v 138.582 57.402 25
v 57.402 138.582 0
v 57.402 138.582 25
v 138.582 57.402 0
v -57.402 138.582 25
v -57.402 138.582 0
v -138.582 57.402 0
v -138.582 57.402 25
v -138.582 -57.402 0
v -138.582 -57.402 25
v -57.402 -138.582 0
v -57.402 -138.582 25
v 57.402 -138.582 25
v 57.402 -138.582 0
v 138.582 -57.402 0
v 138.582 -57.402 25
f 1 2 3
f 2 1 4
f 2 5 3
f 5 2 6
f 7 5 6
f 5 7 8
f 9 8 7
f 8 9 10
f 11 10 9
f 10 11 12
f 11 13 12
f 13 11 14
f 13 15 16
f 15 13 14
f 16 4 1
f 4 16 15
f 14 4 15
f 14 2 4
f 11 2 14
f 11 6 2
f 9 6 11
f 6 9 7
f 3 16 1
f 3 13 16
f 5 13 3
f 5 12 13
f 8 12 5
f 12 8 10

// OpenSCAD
/* Simple octagon with flat surface facing the front of Railcore.  Season to taste. @Max_Plastix */

rotate ([0,0,45/2])
    cylinder (25,150,150, $fn=8);
